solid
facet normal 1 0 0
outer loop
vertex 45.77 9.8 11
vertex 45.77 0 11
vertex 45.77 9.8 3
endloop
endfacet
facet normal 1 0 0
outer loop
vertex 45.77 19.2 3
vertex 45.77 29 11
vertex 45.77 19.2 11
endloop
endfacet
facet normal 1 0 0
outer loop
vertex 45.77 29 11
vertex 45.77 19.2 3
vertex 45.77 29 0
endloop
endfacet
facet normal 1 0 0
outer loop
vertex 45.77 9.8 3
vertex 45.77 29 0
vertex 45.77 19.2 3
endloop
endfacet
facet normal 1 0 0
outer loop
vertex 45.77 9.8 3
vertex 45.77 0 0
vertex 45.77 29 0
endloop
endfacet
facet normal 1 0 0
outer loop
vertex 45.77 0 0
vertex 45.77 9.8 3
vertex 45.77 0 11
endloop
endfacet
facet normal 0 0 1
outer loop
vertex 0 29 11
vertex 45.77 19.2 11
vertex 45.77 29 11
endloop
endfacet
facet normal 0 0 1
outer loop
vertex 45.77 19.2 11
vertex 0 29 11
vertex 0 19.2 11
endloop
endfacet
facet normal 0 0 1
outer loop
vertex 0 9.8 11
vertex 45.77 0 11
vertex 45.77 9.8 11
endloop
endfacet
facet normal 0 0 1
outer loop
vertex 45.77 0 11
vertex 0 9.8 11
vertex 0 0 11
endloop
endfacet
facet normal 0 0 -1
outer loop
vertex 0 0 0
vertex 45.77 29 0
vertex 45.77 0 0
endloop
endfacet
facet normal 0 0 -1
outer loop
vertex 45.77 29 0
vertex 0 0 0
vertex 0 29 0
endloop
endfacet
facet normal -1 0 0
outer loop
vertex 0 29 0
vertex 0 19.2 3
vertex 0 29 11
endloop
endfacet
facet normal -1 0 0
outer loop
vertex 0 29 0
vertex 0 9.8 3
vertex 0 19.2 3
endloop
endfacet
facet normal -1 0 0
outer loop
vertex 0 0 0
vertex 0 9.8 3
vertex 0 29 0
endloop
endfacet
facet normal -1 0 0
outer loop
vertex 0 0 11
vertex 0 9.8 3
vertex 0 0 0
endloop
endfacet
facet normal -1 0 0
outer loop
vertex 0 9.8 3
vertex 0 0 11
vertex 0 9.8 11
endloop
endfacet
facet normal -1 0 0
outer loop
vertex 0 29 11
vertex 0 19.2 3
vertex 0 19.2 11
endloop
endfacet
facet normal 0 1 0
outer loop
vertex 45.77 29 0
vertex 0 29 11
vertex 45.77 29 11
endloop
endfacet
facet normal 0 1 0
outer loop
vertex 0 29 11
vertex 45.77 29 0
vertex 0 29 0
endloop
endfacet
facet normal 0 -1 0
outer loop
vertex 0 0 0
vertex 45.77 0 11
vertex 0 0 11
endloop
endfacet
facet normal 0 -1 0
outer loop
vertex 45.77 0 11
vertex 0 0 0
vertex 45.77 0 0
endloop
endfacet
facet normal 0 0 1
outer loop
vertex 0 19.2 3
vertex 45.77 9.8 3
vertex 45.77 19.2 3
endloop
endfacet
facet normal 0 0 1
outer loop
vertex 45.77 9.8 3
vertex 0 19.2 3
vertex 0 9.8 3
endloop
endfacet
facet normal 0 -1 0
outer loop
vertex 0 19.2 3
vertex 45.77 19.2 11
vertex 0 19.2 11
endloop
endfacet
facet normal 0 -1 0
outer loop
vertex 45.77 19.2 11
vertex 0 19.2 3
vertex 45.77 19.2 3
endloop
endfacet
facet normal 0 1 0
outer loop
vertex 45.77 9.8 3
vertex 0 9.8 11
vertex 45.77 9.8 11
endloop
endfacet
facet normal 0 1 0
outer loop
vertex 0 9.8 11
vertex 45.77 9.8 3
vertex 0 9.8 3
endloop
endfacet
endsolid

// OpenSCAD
// file: gui.scad
// Copyright (c) 2026 Chris Lee and contibuters.
// Licensed under the MIT license. See LICENSE file in the project root for details.

// :GUI:
leak_check = false;
// :GUI:
oled = true;
// :GUI:
mount_tab = true;
// :GUI:
motion_light = true;
// :GUI:
motion = false;
// :GUI:
radar = false;
// :GUI:
show_vitamins = true;
// :GUI:
show_box = true;
// :GUI:
top = true;
// file: ProjectBox/oled91.scad
// Copyright (c) 2024 Chris Lee and contibuters.
// Licensed under the MIT license. See LICENSE file in the project root for details.

// This is a simple model of a 0.91" OLED module.
// E.g., https://www.aliexpress.us/item/2251832485915041.html
module oled91() {
  s = inch * 0.1;
  pin_len = 4;
  color("silver") {
    for (i = [0: 3]) {
      translate([s*i+pad_space, pad_space/2, -pin_len]) cube([0.25, 0.25, pin_len]);
    }
  }
  color("gray") cube([12, 38, 1]);
  translate([0, 5.5, 1]) color("black") cube([12, 28, 1]);
}
// file: ProjectBox/util.scad
// Copyright (c) 2024 Chris Lee and contibuters.
// Licensed under the MIT license. See LICENSE file in the project root for details.

include <MCAD/units.scad>

ones = [1, 1, 1];

module RX(angle) {
  rotate(angle, X) children();
}
module RY(angle) {
  rotate(angle, Y) children();
}
module RZ(angle) {
  rotate(angle, Z) children();
}
module TX(dist) {
  translate(X*dist) children();
}
module TX(dist) {
  translate(X*dist) children();
}
module TY(dist) {
  translate(Y*dist) children();
}
module TZ(dist) {
  translate(Z*dist) children();
}

// x-extra and y-extra adjust the x/y offset at the far-x and far-y corners.
module at_corners(dims, corner_offset, to_draw=undef, x_extra=0.0, y_extra=0.0) {
  o = corner_offset;
  if (!to_draw || to_draw[0]) translate([o, o, 0]) children();
  if (!to_draw || to_draw[1]) translate([dims[0]-o+x_extra, o, 0]) rotate(90, Z) children();
  if (!to_draw || to_draw[2]) translate([dims[0]-o+x_extra, dims[1]-o+y_extra, 0])
				rotate(180, Z) children();
  if (!to_draw || to_draw[3]) translate([o, dims[1]-o+y_extra, 0]) rotate(270, Z) children();
}
// file: ProjectBox/screw_tab.scad
// Copyright (c) 2024 Chris Lee and contibuters.
// Licensed under the MIT license. See LICENSE file in the project root for details.

include <MCAD/units.scad>

// Screw tab is drawn in the y-direction (attached on -Y side).
module screw_tab(tab_width=10, thickness=2, screw_radius=2) {
  $fn=40;
  dz = thickness;
  sd = tab_width;
  sr = tab_width / 2;
  translate([-sr, -epsilon, 0]) difference() {
    union() {
      cube([sd, sr, dz]);
      translate([sr, sr, 0]) cylinder(dz, sr, sr);
    }
    translate([sr, sr, -epsilon]) cylinder(dz+1, screw_radius, screw_radius);
  }
}
// file: ProjectBox/rounded_box.scad
// Copyright (c) 2024 Chris Lee and contibuters.
// Licensed under the MIT license. See LICENSE file in the project root for details.

module rounded_box(dims, r) {
  x = dims[0];
  y = dims[1];
  z = dims[2];
  module cyl() {
    cylinder(z, r, r, $fn=40);
  }
  if (r == 0) {
    cube(r);
  } else {
    hull() {
      translate([r, r, 0]) cyl();
      translate([x-r, r, 0]) cyl();
      translate([x-r, y-r, 0]) cyl();
      translate([r, y-r, 0]) cyl();
    }
  }
}
// file: board.scad
// Copyright (c) 2026 Chris Lee and contributors.
// Licensed under the MIT license. See LICENSE file in the project root for details.

include <ProjectBox/project_box.scad>
include <ProjectBox/oled91.scad>
include <gui.scad>

board_thickness = 1.6;
// mm between pads in perf-board (1/10 inch)
pad_space = 2.54;
// This is the size of the PCB, for use in the design of the EBox.
board_dims = [18.75 * pad_space, 15.5 * pad_space, board_thickness];
// This is the distance of each edge of the PCB to the center of the
//  screw holes for mounting the board at each corner.
mount_offset = pad_space;

// This is the position of the OLED screen with respect to the PCB.
module room133_to_oled_frame() {
  u = pad_space;
  translate([u*8.1, 1, 12]) children();
}

// This is a model of the Room133 PCBA with OLED screen, for use in EBox design.
module Room133_board() {
  // Board imported from KiCad (VRML) -> meshlab.
  translate([board_dims[0]/2, board_dims[1]/2, board_dims[2]/2]) color("white")
    import(file="Room133.stl", convexity=3);

  // Optionally add the OLED screen
  if (oled) {
    room133_to_oled_frame() oled91();
  }
}
// file: ProjectBox/shtc3_window.scad
// Copyright (c) 2024 Chris Lee and contibuters.
// Licensed under the MIT license. See LICENSE file in the project root for details.

module shtc3_window(offset, space_above_board, wall, negative, z_gap = 0.0) {
  sz = [3, 3, 1];
  translate(offset) {
    if (negative) {
      translate([0, 0, z_gap-1]) {
	cube([sz[0], sz[1], space_above_board+wall+2-z_gap]);
      }
    } else {
      translate([-wall, -wall, z_gap+epsilon]) {
	cube([sz[0] + 2*wall, sz[1] + 2*wall, space_above_board-z_gap]);
      }
    }
  }
}
// file: ProjectBox/mounts.scad
// Copyright (c) 2024 Chris Lee and contibuters.
// Licensed under the MIT license. See LICENSE file in the project root for details.

module screw_mount(height, wall, screw_radius) {
  $fn = 20;
  difference() {
    cylinder(height, screw_radius+wall, screw_radius+wall);
    cylinder(height+epsilon, screw_radius, screw_radius);
  }
}
// file: ProjectBox/project_box.scad
// Copyright (c) 2024 Chris Lee and contibuters.
// Licensed under the MIT license. See LICENSE file in the project root for details.

include <MCAD/units.scad>
include <rounded_box.scad>
include <screw_tab.scad>
use <util.scad>

bump_d = 0.8;

module in_board_frame(outer_dims, board_dims, space_below_board) {
  translate([(outer_dims[0] - board_dims[0])/2,
	     (outer_dims[1] - board_dims[1])/2,
	     space_below_board])
    children();
}

default_tab_len = 10;
function tab_length(dim, num_tabs=2) = min(default_tab_len, dim/(2*(num_tabs+1)));
function tab_offset(i, dim, num_tabs=2) = (dim*(i+1)/(num_tabs+1))-0.5*tab_length(dim, num_tabs);

module project_box(outer_dims,
		   wall_thickness=1,
		   gap=0.1,
		   // If true put snaps for top/bottom on sides rather than front/back.
		   snaps_on_sides=false,
		   corner_radius=0.0,
		   top=true,
		   top_cutouts=undef,
		   ym_cutouts=undef,
		   screw_tab_d=0) {
  wall = wall_thickness;
  num_snaps = 2;

  // Length of side of box snap-tabs will be added.
  tabdim = snaps_on_sides ? outer_dims[1] : outer_dims[0];
  // Length of snap-tab holes (tabs shrinks slightly to fit).
  tablen = tab_length(tabdim, num_snaps);
  // Difference between tab length and tab hole length;
  tab_gap = 1;

  // Space between bottom of box and top of box.
  fit_gap = 0.02;

  // The bottom of the box fits inside the shell of the top.
  dims = top ? outer_dims : outer_dims - (2*wall+fit_gap) * [1, 1, 1];

  // Tabs for clicking base into start at wall-height, are 2*wall-height high.
  // Allow 2*wall_height above bump for hight of bottom part of box.
  tab_depth = min(bump_d, dims[2] - 3*wall);
  bottom_height = wall+tab_depth+2*wall;

  module bump() {
    dh = bump_d - fit_gap;
    rotate(90, Y) cylinder(tablen-tab_gap, dh, dh, $fn=20);
  }

  module hump_positives(humps, space_above_board, corner_radius, wall) {
    for (hump = humps) {
      offset = hump[0];
      outer_dims = hump[1];
      z_start = gap * 2 + wall + space_below_board + board_thickness + space_above_board + epsilon;
      translate([offset[0], offset[1], z_start]) rounded_box(outer_dims, corner_radius);
    }
  }
  module hump_negatives(humps, space_above_board, corner_radius, wall) {
    for (hump = humps) {
      offset = hump[0];
      outer_dims = hump[1];
      z_start = gap * 2 + wall + space_below_board + board_thickness + space_above_board - epsilon - epsilon;
      translate([offset[0]+wall, offset[1]+wall, z_start])
	rounded_box(outer_dims-[wall*2, wall*2, wall], corner_radius);
    }
  }
  module cutouts(cutout_list, remove_len) {
    for (cutout = cutout_list) {
      offset = cutout[0];
      dims = cutout[1];
      translate([offset[0], offset[1], 0]) cube([dims[0], dims[1], remove_len]);
    }
  }

  wedge_dx = 2*wall;
  wedge_dy = min(outer_dims[1]-2*wall-corner_radius, 10);
  wedge_dz = wedge_dx;
  module wedge() {
    // Bump to stop the bottom of box to go too up into the top.
    translate([0, 0, bottom_height+fit_gap]) {
      // Start with cube, switch to wedge for printing.
      translate(Y*wedge_dy) rotate(90, X)
	linear_extrude(wedge_dy) polygon([[0, 0], [0, wedge_dz], [wedge_dx, 0]]);
    }
  }

  // The bottom of the box fits inside the shell of the top.
  translate(top ? [0,0,0] : wall*[1, 1, 0]) union() {
    difference() {
      // shell
      difference() {
	union() {
	  rounded_box(dims, corner_radius);
	  if (top)
	    hump_positives(bumps, space_above_board, corner_radius, wall);
	}
	iz = top ? (dims[2] - 2*wall) : dims[2];  // inner-z
	translate(ones*wall) rounded_box([dims[0] - wall*2, dims[1]-wall*2, iz], corner_radius);
	if (top) {
	  hump_negatives(bumps, space_above_board, corner_radius, wall);
	  // cutouts from the top surface
	  if (top_cutouts)
	    cutouts(top_cutouts, remove_len=100);
	  // cutouts from the y=0 surface
	  if (ym_cutouts)
	    translate([0, 1+wall, 0]) rotate([90, 0, 0]) cutouts(ym_cutouts, remove_len=(wall+2));
	}
      }

      if (!top) {
	// Box bottom

	// Cut off top.
	translate([-1, -1, bottom_height]) { cube(dims + 2 * ones); }
	// Make a slot for top to click into
	bottom_offset = -wall;  // offset to account for bottom fitting inside top.
	if (snaps_on_sides) {
	  for (isnap = [0:num_snaps-1]) {
	    y = tab_offset(isnap, tabdim, num_snaps) + bottom_offset;
	    translate([-1, y, wall]) cube([dims[0]+2, tablen, wall+tab_depth]);
	  }
	} else {
	  for (isnap = [0:num_snaps-1]) {
	    x = tab_offset(isnap, tabdim, num_snaps) + bottom_offset;
	    translate([x, -1, wall]) cube([tablen, dims[1]+2, wall+tab_depth]);
	  }
	}
      }	else {
	// Box top

	// Cut out for bottom
	translate(wall*[1, 1, -1]) {
	  rounded_box([dims[0]-2*wall, dims[1]-2*wall, wall*3], corner_radius);
	}
      }
    }

    // Board supports
    if (top) {
      // Snaps: Make bumps to click into slot in bottom.
      if (snaps_on_sides) {
	for (isnap = [0:num_snaps-1]) {
	  y = tab_offset(isnap, tabdim, num_snaps) + tab_gap/2;
	  translate([wall-epsilon, y, wall+gap/2]) rotate(90, Z) bump();
	  translate([dims[0]+epsilon-wall, y, wall+gap/2]) rotate(90, Z) bump();
	}
	translate([wall-epsilon, (outer_dims[1]-wedge_dy)/2, 0]) wedge();
	translate([outer_dims[0]-wall+epsilon, (outer_dims[1]+wedge_dy)/2, 0])
	  rotate(180, Z) wedge();
      } else {
	for (isnap = [0:num_snaps-1]) {
	  x = tab_offset(isnap, tabdim, num_snaps) + tab_gap/2;
	  translate([x, wall-epsilon, wall+gap/2]) bump();
	  translate([x, dims[1]+epsilon-wall, wall+gap/2]) bump();
	}
	translate([(outer_dims[0]+wedge_dy)/2, wall-epsilon, 0]) rotate(90, Z) wedge();
	translate([(outer_dims[0]-wedge_dy)/2, outer_dims[1]-wall+epsilon, 0])
	  rotate(270, Z) wedge();
      }
    }
  }

  if (top && screw_tab_d > 0) {
    translate([outer_dims[0]/2, outer_dims[1], 0])
      screw_tab(tab_width=screw_tab_d, thickness=2*wall, screw_radius=2);
  }
}

module holder_tab(wall_thickness, thickness=2, out_r=4, in_r=2) {
  translate(Z*wall_thickness) linear_extrude(thickness) {
    $fn = 20;
    y = epsilon;
    difference() {
      hull() {
	translate([0, epsilon-out_r]) circle(out_r);
	polygon([[-out_r, epsilon], [out_r, epsilon],
		 [out_r, 2*epsilon], [out_r, 2*epsilon]]);
      }
      translate([0, -out_r]) circle(in_r);
    }
  }
}
// file: box.scad
// Copyright (c) 2026 Chris Lee and contributors.
// Licensed under the MIT license. See LICENSE file in the project root for details.

include <ProjectBox/project_box.scad>
include <ProjectBox/mounts.scad>
include <ProjectBox/shtc3_window.scad>
include <board.scad>

ones = [1, 1, 1];

// The walls of the EBox are 1mm thick.
wall_thickness = 1;
// Gap distance between PCB and ebox walls.
gap = 0.2;
// Round the edges of the EBox with a 2mm radius.
corner_radius = 2;

// The basic EBox only has 2mm space above the board.
space_above_board = 2;
// If the PCBA will have an OLED screen the tallest part of the box will be taller.
total_above_board = (oled || radar) ? 15 : space_above_board;
// This is the space below the box, used for the screw mounts.
space_below_board = 3;
// This is the space around the PCBA which the EBox should not intersect.
inner_dims = (board_dims
	      + Z*(space_above_board+space_below_board)
	      + 2*gap*ones);
// This is the size of the outer-surface of the EBox.
outer_dims = (inner_dims
	      + 2*ones*wall_thickness
	      + [2, 2, 0] * corner_radius);

// "Bump" to add on on top of EBox.
// - Zero-sized if neither radar nor OLED is included.
// - Space for radar if included.
// - Space for OLED (with a window) if OLED is included.
// This is the xyz offset of the bump from the 0,0,0 corner of the EBox.
b1o = radar
  ? [15, 8, outer_dims[2]-wall_thickness]
  : [0, 0, outer_dims[2]-wall_thickness];
// This is the outer dimension of the bump.
b1d = radar
  ? [outer_dims[0]-b1o[0]-8, outer_dims[1]-b1o[1], total_above_board-space_above_board]
  : [37, outer_dims[1]-b1o[1], total_above_board-space_above_board];

// This is the position of the PCBA within the EBox.
module in_Room133_board_frame(board_height=false) {
  zoffset = wall_thickness + (board_height ? space_below_board : 0);
  in_board_frame(outer_dims, board_dims, zoffset) children();
}

// This is a window from the top of the EBox with a wall down to the SHTC3 temp/humidity
//  sensor which isolates it from the air inside the resst of the EBox.
module shtc3_window(x, y, z_max, negative) {
  sz = [3, 3, 1];
  w = wall_thickness;
  translate([x, y, space_below_board + board_dims[2]]) {
    if (negative) {
      translate([0, 0, -1]) {
	cube([sz[0], sz[1], z_max+2]);
      }
    } else {
      translate([-w, -w, -0.5]) {
	cube([sz[0] + 2*w, sz[1] + 2*w, z_max]);
      }
    }
  }
}

// This is the module which constructs the EBox for the Room133 device.
module Room133_box(top) {
  wall = wall_thickness;
  screw_tab_d = mount_tab ? 10 : 0;

  shtc3_loc = [board_dims[0] - 4.2, 8.4];

  difference() {
    union() {
      // This is the main body of the EBox, without additional "bump" for OLED/radar.
      project_box(outer_dims,
		  wall_thickness=wall_thickness,
		  gap=gap,
		  corner_radius=corner_radius,
		  top=top,
		  screw_tab_d=screw_tab_d);
      if (top) {
	// Stuff to add on EBox top
	translate(b1o) {
	  // Positive space (outside) of OLED/radar bump.
	  rounded_box(b1d, corner_radius);
	}
	// Outer walls of SHTC3 window/well to isolate sensor from rest of the EBox.
	in_Room133_board_frame()
	  shtc3_window(shtc3_loc[0], shtc3_loc[1], space_above_board+wall, false);
      } else {
	// Stuff to add on EBox bottom
	in_Room133_board_frame() at_corners(board_dims, mount_offset)
	  screw_mount(space_below_board, wall, 1.25);
      }
    }
    // Cut outs.
    if (top) {
      // Negative space of OLED/radar bump.
      translate(b1o+[wall, wall, -epsilon]) rounded_box(b1d-wall*[2, 2, 1], corner_radius);
      if (oled) { // Oled cutout
	room133_to_oled_frame() translate ([4, 8, 5]) cube([12, 28, 20]);
      }
      // USB power-connector cutout
      translate([35, -1, space_below_board-1+0.001]) cube([11, 4, 6+epsilon]);
      // Connector cutouts
      in_Room133_board_frame() {
	if (motion_light) { // Hole for PIRL connector
	  translate([board_dims[0]-7.5, 14, space_below_board+1.6]) cube([7, 13, 50]);
	}
	if (motion) { // Hole for PIR connector
	  translate([board_dims[0]-12.8, 27.5, space_below_board+1.6]) cube([7, 11.5, 50]);
	}
	// Window for temp/humidity sensor
	shtc3_window(shtc3_loc[0], shtc3_loc[1], space_above_board+20, true);
	if (leak_check) {  // Hole for leak-detector connector.
	  translate([board_dims[0]-13.7, 5.5, space_below_board+1.6]) cube([8.4, 8, 50]);
	}
      }
      if (radar) {
	translate([-1, -1, total_above_board+space_below_board+board_thickness+2*gap+0.2])
	  cube([outer_dims[0]+2, outer_dims[1]+2, 10]);
	// translate([-1, -1, -1]) cube([100, 20, 40]);
      }
    }
  }
}
// main file
// This is a base which can clip onto a radar box to help it stand.
include <box.scad>

module base() {
  box_h = outer_dims[2];
  box_l = outer_dims[1];

  slot_h = 8;
  base_h = 3;

  extra_y = 20;
  
  dims = [box_l, box_h + extra_y, slot_h + base_h];

  difference() {
    cube(dims);
    translate([-epsilon, extra_y/2-gap, base_h]) {
      cube([dims[0]+1, box_h+2*gap, outer_dims[1]]);
    }
  }
}

base();
